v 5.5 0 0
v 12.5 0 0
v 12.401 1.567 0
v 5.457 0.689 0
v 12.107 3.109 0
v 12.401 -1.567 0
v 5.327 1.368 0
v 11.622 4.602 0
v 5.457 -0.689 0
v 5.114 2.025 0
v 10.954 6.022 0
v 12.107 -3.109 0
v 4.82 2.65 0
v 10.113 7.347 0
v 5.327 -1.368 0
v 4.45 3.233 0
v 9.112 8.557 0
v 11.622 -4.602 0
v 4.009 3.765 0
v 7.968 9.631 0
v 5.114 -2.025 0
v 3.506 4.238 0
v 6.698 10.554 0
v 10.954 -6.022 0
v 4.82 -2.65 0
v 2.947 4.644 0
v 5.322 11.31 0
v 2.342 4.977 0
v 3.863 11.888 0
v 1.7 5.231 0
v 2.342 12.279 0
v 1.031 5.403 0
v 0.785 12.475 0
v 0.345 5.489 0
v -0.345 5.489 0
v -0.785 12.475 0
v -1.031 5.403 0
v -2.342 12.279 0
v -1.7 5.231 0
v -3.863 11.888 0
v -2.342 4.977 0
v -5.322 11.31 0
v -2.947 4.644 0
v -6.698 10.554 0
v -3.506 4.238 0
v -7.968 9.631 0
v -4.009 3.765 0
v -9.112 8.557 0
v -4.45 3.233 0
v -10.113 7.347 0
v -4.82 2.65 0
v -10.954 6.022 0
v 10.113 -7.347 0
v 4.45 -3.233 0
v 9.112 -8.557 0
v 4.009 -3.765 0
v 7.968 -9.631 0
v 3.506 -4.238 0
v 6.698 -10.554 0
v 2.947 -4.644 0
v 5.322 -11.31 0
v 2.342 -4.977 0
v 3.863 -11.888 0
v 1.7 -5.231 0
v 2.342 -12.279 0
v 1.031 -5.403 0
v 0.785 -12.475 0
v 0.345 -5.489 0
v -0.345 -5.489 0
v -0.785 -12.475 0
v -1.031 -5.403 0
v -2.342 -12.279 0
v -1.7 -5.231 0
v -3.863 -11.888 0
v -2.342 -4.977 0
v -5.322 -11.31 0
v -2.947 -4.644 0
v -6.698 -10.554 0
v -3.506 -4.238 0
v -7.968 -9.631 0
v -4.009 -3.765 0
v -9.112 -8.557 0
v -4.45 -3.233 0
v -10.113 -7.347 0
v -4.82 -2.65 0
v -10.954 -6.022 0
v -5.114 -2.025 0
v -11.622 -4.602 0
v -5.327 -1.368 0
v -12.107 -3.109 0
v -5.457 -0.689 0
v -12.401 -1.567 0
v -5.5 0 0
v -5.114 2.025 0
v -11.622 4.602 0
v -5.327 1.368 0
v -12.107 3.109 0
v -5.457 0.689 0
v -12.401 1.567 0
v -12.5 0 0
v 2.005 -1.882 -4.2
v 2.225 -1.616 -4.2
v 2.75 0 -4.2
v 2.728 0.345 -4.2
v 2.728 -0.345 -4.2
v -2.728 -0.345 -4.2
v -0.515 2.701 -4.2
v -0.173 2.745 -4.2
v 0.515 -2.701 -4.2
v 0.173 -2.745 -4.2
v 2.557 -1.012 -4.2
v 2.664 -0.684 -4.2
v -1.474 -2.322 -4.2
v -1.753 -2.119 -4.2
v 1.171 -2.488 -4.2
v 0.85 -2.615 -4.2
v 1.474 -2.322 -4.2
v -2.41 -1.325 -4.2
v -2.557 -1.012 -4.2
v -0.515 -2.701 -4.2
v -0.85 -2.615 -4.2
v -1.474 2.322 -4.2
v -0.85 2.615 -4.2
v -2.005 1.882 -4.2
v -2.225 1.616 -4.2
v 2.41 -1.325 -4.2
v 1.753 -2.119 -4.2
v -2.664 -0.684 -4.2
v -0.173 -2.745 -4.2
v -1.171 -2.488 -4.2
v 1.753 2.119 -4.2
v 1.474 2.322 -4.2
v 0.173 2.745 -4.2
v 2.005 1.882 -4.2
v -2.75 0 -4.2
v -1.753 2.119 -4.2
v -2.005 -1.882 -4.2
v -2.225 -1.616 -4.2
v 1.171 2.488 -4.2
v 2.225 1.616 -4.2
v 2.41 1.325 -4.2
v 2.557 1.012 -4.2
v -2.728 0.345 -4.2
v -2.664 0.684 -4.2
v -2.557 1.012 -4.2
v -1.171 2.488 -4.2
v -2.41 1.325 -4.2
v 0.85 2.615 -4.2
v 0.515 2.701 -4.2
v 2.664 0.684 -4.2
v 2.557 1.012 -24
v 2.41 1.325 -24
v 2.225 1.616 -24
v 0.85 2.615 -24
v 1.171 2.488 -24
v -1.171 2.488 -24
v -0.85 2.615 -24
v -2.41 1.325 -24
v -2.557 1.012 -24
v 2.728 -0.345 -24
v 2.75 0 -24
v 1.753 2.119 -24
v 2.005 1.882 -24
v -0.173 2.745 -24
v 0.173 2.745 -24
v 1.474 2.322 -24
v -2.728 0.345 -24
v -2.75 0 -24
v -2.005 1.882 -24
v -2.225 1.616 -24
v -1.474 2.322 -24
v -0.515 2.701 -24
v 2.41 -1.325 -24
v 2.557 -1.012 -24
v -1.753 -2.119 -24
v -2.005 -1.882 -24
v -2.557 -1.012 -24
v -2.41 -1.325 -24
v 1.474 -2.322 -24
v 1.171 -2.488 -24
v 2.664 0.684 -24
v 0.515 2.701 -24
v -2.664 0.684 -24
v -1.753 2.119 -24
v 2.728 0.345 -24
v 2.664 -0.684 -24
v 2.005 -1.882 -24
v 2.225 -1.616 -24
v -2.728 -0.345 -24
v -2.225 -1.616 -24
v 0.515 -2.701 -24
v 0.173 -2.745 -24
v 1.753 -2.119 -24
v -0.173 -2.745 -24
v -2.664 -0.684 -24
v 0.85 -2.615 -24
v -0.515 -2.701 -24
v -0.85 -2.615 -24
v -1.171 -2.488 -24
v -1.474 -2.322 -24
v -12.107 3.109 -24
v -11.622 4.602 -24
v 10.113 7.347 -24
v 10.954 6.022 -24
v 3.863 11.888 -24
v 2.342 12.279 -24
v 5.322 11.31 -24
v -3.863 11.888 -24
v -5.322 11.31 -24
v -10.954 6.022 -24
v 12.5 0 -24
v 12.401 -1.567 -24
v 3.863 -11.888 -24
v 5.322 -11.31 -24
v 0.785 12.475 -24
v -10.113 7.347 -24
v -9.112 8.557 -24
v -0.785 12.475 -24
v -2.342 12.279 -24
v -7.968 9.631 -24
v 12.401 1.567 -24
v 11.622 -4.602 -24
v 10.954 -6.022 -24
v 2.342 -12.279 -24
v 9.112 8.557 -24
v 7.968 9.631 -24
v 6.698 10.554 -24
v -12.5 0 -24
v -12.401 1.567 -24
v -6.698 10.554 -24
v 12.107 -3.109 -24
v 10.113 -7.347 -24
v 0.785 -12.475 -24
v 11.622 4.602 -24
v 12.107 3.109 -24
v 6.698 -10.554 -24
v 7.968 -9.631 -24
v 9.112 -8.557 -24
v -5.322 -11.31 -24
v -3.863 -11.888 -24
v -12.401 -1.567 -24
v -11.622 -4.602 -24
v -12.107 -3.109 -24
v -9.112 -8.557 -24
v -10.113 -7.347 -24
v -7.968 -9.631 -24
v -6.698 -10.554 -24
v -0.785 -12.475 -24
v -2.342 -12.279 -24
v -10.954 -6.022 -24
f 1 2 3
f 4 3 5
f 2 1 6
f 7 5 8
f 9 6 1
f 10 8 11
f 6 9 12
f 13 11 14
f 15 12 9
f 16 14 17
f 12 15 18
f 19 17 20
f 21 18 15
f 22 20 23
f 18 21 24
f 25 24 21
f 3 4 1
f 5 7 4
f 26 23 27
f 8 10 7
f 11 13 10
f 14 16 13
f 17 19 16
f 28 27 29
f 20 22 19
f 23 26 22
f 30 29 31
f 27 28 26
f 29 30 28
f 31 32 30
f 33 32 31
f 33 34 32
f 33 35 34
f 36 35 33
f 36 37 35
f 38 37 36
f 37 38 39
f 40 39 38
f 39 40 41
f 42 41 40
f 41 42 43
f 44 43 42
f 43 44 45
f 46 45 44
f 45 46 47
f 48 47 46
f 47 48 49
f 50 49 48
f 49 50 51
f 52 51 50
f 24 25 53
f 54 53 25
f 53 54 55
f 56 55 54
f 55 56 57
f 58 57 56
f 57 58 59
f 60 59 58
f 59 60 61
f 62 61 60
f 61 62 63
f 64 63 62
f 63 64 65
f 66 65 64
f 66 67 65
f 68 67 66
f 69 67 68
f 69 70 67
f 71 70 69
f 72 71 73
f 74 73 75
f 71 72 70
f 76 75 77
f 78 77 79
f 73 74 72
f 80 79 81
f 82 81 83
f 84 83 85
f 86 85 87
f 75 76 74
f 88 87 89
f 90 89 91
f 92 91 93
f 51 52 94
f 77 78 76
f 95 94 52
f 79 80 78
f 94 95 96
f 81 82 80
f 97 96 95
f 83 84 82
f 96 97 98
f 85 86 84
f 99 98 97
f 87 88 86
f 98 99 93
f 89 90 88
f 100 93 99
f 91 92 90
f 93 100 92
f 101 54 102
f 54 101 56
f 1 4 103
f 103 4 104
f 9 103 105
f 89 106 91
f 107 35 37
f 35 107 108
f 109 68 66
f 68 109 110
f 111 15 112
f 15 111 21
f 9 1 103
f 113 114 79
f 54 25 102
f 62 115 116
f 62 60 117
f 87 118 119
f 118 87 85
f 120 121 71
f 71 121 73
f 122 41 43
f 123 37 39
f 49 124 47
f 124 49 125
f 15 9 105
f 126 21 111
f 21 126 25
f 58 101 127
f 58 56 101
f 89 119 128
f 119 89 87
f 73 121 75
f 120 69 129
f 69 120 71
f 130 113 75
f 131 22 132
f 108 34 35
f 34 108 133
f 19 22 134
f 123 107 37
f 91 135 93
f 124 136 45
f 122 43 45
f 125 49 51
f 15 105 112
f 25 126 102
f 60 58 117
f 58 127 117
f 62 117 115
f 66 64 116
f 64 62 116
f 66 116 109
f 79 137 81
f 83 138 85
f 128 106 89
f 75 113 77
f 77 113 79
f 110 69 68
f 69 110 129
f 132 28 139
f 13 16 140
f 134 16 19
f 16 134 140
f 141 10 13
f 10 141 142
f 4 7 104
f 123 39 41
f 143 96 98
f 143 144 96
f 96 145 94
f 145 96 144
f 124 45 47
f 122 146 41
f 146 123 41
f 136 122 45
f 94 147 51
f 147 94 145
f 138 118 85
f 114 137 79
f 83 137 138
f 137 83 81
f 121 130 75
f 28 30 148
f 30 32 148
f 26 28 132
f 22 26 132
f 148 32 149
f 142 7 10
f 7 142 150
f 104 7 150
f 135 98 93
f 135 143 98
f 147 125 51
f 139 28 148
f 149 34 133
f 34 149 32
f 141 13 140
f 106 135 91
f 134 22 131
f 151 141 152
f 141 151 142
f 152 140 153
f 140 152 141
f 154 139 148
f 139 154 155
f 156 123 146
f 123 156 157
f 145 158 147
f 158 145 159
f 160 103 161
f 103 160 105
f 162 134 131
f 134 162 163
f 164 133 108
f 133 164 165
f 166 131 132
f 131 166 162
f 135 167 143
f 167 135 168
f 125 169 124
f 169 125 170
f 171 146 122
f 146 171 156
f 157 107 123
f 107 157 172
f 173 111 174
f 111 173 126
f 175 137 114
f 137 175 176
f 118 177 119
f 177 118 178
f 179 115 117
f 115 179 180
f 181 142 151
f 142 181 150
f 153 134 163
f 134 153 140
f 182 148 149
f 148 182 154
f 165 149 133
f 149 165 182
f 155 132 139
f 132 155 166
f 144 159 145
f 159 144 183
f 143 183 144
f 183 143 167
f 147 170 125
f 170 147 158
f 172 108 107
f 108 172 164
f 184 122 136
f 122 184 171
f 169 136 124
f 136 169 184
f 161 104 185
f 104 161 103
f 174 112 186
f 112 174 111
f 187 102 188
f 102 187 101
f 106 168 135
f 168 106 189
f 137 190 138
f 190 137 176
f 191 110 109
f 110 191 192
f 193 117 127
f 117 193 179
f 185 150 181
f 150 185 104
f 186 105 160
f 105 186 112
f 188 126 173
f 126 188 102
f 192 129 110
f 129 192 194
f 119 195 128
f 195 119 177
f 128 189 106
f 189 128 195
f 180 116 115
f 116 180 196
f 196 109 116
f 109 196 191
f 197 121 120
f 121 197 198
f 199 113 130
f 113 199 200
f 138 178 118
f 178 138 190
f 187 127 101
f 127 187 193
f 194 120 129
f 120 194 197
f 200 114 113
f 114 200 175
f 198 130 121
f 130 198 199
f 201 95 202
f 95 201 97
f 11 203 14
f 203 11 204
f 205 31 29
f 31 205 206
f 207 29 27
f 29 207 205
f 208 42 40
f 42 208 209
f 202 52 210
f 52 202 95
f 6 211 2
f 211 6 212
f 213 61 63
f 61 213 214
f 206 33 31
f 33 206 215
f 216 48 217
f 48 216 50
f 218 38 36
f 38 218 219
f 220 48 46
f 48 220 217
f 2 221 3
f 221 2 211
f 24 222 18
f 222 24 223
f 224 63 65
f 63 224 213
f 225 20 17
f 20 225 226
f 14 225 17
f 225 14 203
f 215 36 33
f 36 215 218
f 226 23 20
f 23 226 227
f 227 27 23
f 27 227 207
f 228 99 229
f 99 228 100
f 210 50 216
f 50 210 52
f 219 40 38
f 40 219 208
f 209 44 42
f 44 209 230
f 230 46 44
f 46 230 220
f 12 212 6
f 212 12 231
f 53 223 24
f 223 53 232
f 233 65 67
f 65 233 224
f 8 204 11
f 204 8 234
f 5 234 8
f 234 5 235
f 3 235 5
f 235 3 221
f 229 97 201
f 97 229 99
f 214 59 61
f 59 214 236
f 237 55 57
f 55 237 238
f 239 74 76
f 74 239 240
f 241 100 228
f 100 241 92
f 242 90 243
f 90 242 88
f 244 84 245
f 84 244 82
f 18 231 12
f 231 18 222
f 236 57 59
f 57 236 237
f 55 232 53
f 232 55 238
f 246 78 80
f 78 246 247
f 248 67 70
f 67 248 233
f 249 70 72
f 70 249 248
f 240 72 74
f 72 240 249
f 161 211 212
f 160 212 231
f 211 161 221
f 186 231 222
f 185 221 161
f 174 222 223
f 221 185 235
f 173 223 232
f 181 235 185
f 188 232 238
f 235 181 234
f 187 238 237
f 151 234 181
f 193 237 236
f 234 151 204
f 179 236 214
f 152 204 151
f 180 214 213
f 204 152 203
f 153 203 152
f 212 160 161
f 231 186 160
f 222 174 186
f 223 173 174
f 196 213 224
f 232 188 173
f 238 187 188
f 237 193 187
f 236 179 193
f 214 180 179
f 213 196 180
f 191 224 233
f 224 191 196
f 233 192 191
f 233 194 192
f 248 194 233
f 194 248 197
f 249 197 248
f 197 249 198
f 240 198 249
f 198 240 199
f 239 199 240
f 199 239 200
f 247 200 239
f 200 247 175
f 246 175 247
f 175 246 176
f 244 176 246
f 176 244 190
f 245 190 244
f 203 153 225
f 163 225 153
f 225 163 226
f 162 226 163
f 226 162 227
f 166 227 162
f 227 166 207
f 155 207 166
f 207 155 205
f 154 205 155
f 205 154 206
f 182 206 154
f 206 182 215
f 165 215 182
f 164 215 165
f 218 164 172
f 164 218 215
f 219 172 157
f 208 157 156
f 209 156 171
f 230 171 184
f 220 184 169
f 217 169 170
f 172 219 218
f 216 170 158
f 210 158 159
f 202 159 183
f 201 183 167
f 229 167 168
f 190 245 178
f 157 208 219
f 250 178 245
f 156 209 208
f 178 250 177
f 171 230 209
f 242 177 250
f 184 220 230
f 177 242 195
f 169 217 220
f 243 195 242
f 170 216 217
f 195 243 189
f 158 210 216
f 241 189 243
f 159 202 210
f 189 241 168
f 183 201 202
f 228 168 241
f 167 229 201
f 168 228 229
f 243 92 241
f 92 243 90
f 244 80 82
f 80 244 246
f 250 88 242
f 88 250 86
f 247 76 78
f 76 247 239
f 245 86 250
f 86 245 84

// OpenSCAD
$fn = 50;


difference() {
	union() {
		translate(v = [0, 0, -24.0000000000]) {
			cylinder(h = 24, r = 12.5000000000);
		}
	}
	union() {
		translate(v = [0, 0, 0]) {
			rotate(a = [0, 0, 0]) {
				difference() {
					union() {
						translate(v = [0, 0, -27.0000000000]) {
							cylinder(h = 27, r = 2.2500000000);
						}
						translate(v = [0, 0, -4.2000000000]) {
							cylinder(h = 4.2000000000, r1 = 2.7500000000, r2 = 5.5000000000);
						}
						translate(v = [0, 0, -27.0000000000]) {
							cylinder(h = 27, r = 2.7500000000);
						}
						translate(v = [0, 0, -27.0000000000]) {
							cylinder(h = 27, r = 2.2500000000);
						}
					}
					union();
				}
			}
		}
	}
}
